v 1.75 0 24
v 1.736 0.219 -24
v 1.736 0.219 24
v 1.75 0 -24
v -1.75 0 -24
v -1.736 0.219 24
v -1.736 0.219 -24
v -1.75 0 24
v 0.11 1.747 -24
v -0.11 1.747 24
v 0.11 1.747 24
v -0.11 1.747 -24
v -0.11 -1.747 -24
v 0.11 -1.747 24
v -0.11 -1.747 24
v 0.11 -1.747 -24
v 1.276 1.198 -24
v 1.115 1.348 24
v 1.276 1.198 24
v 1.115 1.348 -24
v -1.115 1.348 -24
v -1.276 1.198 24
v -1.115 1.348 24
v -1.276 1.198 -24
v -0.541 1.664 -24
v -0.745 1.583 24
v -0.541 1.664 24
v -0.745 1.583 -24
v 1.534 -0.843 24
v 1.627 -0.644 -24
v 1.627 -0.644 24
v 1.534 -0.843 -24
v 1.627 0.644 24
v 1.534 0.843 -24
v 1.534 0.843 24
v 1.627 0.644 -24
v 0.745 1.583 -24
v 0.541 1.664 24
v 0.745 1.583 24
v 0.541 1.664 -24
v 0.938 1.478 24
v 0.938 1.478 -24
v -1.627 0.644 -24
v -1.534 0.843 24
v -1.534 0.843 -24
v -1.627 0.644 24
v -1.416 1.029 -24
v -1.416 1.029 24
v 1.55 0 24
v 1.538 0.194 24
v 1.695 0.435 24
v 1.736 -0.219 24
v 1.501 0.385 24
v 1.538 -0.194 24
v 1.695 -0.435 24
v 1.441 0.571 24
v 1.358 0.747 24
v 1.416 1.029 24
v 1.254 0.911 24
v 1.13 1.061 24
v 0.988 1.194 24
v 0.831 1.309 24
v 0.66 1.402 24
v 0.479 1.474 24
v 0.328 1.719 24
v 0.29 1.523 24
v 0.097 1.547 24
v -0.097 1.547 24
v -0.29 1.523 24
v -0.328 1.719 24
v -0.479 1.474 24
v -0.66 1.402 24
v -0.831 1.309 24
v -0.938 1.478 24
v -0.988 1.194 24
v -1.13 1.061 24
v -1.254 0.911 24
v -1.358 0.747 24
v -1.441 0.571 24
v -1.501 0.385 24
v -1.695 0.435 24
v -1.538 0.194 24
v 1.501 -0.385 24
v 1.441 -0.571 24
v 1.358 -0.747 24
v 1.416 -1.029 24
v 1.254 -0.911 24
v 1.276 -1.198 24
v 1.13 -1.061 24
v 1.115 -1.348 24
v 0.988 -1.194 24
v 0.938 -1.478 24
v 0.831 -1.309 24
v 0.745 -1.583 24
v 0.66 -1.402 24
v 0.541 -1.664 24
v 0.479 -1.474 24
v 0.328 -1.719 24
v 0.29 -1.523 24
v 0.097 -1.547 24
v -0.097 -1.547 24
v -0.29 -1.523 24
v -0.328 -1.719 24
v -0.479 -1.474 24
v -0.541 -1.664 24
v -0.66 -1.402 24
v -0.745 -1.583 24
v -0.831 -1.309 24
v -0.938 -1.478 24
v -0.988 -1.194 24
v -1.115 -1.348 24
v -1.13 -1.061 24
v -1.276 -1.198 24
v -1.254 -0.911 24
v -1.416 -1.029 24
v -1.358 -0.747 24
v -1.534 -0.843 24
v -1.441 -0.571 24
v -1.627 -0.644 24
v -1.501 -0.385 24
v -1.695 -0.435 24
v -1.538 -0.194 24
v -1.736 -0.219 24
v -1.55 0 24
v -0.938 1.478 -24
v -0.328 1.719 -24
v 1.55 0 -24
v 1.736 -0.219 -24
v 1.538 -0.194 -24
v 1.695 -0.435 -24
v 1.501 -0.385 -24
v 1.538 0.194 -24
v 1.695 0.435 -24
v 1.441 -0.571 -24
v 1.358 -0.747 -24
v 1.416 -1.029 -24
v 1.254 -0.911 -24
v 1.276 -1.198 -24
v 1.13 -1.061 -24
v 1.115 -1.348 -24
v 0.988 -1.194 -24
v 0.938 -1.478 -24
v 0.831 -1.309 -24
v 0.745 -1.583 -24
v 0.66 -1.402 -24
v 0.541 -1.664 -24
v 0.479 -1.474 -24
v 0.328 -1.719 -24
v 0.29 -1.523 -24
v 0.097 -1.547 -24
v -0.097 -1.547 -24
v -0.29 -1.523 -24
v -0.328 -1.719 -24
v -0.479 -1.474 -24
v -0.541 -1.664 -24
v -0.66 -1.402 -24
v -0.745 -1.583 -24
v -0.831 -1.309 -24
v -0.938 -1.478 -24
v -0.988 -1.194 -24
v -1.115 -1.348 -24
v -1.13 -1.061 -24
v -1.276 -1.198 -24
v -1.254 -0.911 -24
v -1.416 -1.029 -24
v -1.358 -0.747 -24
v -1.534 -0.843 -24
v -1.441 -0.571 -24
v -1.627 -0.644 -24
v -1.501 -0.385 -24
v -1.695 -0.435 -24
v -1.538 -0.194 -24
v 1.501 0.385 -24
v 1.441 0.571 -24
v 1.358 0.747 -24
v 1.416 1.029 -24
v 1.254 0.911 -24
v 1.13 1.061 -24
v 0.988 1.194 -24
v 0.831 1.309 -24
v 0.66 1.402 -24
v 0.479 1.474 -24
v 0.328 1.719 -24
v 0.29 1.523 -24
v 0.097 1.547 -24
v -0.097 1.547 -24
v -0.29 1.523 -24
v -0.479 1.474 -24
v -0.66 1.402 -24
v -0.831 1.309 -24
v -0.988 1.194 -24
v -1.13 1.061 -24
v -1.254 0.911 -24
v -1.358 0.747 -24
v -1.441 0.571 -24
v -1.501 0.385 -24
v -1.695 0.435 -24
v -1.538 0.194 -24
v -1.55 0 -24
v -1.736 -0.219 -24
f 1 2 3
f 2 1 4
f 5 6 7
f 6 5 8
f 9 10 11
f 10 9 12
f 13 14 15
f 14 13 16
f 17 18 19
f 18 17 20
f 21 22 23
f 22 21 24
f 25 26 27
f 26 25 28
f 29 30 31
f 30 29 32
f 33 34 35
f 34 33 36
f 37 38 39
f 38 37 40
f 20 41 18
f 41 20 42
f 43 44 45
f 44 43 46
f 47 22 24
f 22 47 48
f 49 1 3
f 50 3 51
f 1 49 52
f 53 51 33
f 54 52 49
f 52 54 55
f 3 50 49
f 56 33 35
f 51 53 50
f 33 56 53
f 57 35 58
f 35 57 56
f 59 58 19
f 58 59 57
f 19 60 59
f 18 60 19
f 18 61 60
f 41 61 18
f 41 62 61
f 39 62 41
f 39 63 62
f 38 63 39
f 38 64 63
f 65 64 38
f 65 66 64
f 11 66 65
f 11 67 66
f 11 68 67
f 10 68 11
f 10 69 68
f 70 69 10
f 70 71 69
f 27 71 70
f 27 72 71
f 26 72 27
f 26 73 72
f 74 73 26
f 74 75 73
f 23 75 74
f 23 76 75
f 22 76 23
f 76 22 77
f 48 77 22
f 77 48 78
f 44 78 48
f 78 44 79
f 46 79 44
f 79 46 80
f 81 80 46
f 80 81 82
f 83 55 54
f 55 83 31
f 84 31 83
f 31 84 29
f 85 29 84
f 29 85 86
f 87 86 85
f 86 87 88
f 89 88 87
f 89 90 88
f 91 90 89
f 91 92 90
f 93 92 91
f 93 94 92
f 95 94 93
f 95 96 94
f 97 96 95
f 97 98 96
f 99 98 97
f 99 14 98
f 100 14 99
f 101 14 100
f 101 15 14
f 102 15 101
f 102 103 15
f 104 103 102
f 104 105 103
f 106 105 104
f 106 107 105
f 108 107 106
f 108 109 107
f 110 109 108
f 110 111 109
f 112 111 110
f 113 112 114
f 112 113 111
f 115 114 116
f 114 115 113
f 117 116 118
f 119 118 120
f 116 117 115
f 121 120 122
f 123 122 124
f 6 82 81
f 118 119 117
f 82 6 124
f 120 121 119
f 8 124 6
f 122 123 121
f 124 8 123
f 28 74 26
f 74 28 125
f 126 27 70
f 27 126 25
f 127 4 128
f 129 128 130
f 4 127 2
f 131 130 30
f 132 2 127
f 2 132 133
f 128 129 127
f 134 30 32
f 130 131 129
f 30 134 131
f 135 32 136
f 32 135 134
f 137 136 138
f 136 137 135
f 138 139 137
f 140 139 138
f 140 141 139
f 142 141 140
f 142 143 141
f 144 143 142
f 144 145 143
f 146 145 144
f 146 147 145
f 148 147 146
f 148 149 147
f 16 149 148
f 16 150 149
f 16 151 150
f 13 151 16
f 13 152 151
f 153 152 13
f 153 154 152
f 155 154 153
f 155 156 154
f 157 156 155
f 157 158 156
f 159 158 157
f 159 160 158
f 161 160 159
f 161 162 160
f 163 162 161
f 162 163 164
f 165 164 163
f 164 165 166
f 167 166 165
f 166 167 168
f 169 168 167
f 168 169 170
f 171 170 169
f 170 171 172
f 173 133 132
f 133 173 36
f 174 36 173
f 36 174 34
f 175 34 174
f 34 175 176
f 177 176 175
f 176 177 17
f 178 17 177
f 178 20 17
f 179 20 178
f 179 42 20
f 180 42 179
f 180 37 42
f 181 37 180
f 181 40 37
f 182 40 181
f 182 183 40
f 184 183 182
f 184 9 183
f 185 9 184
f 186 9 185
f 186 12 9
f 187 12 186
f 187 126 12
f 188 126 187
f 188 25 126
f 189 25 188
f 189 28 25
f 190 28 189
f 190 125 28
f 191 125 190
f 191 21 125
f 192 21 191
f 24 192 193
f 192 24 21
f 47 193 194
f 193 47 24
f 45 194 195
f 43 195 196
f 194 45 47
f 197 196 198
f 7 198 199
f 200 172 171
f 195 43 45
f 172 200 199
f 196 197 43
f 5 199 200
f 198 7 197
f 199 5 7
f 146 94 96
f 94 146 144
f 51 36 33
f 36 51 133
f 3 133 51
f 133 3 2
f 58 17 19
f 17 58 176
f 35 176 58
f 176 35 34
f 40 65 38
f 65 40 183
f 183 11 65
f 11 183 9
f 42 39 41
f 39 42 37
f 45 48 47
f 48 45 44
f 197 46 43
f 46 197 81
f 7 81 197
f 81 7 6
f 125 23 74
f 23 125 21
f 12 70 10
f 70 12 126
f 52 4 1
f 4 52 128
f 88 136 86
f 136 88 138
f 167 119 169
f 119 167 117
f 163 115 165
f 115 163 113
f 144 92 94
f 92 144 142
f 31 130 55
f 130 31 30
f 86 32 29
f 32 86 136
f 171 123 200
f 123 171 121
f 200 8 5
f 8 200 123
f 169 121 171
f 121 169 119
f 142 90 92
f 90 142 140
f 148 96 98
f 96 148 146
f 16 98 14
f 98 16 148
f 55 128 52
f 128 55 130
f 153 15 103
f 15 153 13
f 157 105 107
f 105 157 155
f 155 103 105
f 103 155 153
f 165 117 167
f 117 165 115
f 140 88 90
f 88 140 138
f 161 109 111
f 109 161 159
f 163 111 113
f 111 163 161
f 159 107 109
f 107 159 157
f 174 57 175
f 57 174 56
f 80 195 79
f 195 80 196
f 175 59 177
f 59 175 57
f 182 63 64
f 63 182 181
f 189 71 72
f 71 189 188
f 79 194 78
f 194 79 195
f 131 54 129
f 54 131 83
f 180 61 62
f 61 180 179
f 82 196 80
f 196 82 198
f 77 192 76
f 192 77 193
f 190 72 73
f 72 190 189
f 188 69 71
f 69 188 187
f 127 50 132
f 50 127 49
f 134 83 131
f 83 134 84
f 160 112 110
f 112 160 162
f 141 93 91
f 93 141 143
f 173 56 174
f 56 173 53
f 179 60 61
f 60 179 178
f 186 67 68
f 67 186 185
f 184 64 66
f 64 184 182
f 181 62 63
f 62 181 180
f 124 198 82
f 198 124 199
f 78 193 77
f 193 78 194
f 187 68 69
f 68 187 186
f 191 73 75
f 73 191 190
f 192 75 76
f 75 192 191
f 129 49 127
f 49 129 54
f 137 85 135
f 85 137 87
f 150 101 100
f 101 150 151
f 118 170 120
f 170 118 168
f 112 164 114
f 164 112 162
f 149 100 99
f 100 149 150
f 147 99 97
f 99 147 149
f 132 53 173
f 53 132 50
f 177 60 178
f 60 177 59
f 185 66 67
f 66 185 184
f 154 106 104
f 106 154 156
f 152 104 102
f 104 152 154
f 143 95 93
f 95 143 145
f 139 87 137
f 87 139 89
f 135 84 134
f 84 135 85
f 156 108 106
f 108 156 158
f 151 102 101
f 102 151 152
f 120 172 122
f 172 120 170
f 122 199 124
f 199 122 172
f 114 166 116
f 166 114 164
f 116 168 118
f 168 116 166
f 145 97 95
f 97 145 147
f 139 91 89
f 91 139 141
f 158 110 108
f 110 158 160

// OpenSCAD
$fn = 50;


difference() {
	union() {
		translate(v = [0, 0, -24.0000000000]) {
			cylinder(h = 48, r = 1.7500000000);
		}
	}
	union() {
		translate(v = [0, 0, -100.0000000000]) {
			cylinder(h = 200, r = 1.5500000000);
		}
	}
}
